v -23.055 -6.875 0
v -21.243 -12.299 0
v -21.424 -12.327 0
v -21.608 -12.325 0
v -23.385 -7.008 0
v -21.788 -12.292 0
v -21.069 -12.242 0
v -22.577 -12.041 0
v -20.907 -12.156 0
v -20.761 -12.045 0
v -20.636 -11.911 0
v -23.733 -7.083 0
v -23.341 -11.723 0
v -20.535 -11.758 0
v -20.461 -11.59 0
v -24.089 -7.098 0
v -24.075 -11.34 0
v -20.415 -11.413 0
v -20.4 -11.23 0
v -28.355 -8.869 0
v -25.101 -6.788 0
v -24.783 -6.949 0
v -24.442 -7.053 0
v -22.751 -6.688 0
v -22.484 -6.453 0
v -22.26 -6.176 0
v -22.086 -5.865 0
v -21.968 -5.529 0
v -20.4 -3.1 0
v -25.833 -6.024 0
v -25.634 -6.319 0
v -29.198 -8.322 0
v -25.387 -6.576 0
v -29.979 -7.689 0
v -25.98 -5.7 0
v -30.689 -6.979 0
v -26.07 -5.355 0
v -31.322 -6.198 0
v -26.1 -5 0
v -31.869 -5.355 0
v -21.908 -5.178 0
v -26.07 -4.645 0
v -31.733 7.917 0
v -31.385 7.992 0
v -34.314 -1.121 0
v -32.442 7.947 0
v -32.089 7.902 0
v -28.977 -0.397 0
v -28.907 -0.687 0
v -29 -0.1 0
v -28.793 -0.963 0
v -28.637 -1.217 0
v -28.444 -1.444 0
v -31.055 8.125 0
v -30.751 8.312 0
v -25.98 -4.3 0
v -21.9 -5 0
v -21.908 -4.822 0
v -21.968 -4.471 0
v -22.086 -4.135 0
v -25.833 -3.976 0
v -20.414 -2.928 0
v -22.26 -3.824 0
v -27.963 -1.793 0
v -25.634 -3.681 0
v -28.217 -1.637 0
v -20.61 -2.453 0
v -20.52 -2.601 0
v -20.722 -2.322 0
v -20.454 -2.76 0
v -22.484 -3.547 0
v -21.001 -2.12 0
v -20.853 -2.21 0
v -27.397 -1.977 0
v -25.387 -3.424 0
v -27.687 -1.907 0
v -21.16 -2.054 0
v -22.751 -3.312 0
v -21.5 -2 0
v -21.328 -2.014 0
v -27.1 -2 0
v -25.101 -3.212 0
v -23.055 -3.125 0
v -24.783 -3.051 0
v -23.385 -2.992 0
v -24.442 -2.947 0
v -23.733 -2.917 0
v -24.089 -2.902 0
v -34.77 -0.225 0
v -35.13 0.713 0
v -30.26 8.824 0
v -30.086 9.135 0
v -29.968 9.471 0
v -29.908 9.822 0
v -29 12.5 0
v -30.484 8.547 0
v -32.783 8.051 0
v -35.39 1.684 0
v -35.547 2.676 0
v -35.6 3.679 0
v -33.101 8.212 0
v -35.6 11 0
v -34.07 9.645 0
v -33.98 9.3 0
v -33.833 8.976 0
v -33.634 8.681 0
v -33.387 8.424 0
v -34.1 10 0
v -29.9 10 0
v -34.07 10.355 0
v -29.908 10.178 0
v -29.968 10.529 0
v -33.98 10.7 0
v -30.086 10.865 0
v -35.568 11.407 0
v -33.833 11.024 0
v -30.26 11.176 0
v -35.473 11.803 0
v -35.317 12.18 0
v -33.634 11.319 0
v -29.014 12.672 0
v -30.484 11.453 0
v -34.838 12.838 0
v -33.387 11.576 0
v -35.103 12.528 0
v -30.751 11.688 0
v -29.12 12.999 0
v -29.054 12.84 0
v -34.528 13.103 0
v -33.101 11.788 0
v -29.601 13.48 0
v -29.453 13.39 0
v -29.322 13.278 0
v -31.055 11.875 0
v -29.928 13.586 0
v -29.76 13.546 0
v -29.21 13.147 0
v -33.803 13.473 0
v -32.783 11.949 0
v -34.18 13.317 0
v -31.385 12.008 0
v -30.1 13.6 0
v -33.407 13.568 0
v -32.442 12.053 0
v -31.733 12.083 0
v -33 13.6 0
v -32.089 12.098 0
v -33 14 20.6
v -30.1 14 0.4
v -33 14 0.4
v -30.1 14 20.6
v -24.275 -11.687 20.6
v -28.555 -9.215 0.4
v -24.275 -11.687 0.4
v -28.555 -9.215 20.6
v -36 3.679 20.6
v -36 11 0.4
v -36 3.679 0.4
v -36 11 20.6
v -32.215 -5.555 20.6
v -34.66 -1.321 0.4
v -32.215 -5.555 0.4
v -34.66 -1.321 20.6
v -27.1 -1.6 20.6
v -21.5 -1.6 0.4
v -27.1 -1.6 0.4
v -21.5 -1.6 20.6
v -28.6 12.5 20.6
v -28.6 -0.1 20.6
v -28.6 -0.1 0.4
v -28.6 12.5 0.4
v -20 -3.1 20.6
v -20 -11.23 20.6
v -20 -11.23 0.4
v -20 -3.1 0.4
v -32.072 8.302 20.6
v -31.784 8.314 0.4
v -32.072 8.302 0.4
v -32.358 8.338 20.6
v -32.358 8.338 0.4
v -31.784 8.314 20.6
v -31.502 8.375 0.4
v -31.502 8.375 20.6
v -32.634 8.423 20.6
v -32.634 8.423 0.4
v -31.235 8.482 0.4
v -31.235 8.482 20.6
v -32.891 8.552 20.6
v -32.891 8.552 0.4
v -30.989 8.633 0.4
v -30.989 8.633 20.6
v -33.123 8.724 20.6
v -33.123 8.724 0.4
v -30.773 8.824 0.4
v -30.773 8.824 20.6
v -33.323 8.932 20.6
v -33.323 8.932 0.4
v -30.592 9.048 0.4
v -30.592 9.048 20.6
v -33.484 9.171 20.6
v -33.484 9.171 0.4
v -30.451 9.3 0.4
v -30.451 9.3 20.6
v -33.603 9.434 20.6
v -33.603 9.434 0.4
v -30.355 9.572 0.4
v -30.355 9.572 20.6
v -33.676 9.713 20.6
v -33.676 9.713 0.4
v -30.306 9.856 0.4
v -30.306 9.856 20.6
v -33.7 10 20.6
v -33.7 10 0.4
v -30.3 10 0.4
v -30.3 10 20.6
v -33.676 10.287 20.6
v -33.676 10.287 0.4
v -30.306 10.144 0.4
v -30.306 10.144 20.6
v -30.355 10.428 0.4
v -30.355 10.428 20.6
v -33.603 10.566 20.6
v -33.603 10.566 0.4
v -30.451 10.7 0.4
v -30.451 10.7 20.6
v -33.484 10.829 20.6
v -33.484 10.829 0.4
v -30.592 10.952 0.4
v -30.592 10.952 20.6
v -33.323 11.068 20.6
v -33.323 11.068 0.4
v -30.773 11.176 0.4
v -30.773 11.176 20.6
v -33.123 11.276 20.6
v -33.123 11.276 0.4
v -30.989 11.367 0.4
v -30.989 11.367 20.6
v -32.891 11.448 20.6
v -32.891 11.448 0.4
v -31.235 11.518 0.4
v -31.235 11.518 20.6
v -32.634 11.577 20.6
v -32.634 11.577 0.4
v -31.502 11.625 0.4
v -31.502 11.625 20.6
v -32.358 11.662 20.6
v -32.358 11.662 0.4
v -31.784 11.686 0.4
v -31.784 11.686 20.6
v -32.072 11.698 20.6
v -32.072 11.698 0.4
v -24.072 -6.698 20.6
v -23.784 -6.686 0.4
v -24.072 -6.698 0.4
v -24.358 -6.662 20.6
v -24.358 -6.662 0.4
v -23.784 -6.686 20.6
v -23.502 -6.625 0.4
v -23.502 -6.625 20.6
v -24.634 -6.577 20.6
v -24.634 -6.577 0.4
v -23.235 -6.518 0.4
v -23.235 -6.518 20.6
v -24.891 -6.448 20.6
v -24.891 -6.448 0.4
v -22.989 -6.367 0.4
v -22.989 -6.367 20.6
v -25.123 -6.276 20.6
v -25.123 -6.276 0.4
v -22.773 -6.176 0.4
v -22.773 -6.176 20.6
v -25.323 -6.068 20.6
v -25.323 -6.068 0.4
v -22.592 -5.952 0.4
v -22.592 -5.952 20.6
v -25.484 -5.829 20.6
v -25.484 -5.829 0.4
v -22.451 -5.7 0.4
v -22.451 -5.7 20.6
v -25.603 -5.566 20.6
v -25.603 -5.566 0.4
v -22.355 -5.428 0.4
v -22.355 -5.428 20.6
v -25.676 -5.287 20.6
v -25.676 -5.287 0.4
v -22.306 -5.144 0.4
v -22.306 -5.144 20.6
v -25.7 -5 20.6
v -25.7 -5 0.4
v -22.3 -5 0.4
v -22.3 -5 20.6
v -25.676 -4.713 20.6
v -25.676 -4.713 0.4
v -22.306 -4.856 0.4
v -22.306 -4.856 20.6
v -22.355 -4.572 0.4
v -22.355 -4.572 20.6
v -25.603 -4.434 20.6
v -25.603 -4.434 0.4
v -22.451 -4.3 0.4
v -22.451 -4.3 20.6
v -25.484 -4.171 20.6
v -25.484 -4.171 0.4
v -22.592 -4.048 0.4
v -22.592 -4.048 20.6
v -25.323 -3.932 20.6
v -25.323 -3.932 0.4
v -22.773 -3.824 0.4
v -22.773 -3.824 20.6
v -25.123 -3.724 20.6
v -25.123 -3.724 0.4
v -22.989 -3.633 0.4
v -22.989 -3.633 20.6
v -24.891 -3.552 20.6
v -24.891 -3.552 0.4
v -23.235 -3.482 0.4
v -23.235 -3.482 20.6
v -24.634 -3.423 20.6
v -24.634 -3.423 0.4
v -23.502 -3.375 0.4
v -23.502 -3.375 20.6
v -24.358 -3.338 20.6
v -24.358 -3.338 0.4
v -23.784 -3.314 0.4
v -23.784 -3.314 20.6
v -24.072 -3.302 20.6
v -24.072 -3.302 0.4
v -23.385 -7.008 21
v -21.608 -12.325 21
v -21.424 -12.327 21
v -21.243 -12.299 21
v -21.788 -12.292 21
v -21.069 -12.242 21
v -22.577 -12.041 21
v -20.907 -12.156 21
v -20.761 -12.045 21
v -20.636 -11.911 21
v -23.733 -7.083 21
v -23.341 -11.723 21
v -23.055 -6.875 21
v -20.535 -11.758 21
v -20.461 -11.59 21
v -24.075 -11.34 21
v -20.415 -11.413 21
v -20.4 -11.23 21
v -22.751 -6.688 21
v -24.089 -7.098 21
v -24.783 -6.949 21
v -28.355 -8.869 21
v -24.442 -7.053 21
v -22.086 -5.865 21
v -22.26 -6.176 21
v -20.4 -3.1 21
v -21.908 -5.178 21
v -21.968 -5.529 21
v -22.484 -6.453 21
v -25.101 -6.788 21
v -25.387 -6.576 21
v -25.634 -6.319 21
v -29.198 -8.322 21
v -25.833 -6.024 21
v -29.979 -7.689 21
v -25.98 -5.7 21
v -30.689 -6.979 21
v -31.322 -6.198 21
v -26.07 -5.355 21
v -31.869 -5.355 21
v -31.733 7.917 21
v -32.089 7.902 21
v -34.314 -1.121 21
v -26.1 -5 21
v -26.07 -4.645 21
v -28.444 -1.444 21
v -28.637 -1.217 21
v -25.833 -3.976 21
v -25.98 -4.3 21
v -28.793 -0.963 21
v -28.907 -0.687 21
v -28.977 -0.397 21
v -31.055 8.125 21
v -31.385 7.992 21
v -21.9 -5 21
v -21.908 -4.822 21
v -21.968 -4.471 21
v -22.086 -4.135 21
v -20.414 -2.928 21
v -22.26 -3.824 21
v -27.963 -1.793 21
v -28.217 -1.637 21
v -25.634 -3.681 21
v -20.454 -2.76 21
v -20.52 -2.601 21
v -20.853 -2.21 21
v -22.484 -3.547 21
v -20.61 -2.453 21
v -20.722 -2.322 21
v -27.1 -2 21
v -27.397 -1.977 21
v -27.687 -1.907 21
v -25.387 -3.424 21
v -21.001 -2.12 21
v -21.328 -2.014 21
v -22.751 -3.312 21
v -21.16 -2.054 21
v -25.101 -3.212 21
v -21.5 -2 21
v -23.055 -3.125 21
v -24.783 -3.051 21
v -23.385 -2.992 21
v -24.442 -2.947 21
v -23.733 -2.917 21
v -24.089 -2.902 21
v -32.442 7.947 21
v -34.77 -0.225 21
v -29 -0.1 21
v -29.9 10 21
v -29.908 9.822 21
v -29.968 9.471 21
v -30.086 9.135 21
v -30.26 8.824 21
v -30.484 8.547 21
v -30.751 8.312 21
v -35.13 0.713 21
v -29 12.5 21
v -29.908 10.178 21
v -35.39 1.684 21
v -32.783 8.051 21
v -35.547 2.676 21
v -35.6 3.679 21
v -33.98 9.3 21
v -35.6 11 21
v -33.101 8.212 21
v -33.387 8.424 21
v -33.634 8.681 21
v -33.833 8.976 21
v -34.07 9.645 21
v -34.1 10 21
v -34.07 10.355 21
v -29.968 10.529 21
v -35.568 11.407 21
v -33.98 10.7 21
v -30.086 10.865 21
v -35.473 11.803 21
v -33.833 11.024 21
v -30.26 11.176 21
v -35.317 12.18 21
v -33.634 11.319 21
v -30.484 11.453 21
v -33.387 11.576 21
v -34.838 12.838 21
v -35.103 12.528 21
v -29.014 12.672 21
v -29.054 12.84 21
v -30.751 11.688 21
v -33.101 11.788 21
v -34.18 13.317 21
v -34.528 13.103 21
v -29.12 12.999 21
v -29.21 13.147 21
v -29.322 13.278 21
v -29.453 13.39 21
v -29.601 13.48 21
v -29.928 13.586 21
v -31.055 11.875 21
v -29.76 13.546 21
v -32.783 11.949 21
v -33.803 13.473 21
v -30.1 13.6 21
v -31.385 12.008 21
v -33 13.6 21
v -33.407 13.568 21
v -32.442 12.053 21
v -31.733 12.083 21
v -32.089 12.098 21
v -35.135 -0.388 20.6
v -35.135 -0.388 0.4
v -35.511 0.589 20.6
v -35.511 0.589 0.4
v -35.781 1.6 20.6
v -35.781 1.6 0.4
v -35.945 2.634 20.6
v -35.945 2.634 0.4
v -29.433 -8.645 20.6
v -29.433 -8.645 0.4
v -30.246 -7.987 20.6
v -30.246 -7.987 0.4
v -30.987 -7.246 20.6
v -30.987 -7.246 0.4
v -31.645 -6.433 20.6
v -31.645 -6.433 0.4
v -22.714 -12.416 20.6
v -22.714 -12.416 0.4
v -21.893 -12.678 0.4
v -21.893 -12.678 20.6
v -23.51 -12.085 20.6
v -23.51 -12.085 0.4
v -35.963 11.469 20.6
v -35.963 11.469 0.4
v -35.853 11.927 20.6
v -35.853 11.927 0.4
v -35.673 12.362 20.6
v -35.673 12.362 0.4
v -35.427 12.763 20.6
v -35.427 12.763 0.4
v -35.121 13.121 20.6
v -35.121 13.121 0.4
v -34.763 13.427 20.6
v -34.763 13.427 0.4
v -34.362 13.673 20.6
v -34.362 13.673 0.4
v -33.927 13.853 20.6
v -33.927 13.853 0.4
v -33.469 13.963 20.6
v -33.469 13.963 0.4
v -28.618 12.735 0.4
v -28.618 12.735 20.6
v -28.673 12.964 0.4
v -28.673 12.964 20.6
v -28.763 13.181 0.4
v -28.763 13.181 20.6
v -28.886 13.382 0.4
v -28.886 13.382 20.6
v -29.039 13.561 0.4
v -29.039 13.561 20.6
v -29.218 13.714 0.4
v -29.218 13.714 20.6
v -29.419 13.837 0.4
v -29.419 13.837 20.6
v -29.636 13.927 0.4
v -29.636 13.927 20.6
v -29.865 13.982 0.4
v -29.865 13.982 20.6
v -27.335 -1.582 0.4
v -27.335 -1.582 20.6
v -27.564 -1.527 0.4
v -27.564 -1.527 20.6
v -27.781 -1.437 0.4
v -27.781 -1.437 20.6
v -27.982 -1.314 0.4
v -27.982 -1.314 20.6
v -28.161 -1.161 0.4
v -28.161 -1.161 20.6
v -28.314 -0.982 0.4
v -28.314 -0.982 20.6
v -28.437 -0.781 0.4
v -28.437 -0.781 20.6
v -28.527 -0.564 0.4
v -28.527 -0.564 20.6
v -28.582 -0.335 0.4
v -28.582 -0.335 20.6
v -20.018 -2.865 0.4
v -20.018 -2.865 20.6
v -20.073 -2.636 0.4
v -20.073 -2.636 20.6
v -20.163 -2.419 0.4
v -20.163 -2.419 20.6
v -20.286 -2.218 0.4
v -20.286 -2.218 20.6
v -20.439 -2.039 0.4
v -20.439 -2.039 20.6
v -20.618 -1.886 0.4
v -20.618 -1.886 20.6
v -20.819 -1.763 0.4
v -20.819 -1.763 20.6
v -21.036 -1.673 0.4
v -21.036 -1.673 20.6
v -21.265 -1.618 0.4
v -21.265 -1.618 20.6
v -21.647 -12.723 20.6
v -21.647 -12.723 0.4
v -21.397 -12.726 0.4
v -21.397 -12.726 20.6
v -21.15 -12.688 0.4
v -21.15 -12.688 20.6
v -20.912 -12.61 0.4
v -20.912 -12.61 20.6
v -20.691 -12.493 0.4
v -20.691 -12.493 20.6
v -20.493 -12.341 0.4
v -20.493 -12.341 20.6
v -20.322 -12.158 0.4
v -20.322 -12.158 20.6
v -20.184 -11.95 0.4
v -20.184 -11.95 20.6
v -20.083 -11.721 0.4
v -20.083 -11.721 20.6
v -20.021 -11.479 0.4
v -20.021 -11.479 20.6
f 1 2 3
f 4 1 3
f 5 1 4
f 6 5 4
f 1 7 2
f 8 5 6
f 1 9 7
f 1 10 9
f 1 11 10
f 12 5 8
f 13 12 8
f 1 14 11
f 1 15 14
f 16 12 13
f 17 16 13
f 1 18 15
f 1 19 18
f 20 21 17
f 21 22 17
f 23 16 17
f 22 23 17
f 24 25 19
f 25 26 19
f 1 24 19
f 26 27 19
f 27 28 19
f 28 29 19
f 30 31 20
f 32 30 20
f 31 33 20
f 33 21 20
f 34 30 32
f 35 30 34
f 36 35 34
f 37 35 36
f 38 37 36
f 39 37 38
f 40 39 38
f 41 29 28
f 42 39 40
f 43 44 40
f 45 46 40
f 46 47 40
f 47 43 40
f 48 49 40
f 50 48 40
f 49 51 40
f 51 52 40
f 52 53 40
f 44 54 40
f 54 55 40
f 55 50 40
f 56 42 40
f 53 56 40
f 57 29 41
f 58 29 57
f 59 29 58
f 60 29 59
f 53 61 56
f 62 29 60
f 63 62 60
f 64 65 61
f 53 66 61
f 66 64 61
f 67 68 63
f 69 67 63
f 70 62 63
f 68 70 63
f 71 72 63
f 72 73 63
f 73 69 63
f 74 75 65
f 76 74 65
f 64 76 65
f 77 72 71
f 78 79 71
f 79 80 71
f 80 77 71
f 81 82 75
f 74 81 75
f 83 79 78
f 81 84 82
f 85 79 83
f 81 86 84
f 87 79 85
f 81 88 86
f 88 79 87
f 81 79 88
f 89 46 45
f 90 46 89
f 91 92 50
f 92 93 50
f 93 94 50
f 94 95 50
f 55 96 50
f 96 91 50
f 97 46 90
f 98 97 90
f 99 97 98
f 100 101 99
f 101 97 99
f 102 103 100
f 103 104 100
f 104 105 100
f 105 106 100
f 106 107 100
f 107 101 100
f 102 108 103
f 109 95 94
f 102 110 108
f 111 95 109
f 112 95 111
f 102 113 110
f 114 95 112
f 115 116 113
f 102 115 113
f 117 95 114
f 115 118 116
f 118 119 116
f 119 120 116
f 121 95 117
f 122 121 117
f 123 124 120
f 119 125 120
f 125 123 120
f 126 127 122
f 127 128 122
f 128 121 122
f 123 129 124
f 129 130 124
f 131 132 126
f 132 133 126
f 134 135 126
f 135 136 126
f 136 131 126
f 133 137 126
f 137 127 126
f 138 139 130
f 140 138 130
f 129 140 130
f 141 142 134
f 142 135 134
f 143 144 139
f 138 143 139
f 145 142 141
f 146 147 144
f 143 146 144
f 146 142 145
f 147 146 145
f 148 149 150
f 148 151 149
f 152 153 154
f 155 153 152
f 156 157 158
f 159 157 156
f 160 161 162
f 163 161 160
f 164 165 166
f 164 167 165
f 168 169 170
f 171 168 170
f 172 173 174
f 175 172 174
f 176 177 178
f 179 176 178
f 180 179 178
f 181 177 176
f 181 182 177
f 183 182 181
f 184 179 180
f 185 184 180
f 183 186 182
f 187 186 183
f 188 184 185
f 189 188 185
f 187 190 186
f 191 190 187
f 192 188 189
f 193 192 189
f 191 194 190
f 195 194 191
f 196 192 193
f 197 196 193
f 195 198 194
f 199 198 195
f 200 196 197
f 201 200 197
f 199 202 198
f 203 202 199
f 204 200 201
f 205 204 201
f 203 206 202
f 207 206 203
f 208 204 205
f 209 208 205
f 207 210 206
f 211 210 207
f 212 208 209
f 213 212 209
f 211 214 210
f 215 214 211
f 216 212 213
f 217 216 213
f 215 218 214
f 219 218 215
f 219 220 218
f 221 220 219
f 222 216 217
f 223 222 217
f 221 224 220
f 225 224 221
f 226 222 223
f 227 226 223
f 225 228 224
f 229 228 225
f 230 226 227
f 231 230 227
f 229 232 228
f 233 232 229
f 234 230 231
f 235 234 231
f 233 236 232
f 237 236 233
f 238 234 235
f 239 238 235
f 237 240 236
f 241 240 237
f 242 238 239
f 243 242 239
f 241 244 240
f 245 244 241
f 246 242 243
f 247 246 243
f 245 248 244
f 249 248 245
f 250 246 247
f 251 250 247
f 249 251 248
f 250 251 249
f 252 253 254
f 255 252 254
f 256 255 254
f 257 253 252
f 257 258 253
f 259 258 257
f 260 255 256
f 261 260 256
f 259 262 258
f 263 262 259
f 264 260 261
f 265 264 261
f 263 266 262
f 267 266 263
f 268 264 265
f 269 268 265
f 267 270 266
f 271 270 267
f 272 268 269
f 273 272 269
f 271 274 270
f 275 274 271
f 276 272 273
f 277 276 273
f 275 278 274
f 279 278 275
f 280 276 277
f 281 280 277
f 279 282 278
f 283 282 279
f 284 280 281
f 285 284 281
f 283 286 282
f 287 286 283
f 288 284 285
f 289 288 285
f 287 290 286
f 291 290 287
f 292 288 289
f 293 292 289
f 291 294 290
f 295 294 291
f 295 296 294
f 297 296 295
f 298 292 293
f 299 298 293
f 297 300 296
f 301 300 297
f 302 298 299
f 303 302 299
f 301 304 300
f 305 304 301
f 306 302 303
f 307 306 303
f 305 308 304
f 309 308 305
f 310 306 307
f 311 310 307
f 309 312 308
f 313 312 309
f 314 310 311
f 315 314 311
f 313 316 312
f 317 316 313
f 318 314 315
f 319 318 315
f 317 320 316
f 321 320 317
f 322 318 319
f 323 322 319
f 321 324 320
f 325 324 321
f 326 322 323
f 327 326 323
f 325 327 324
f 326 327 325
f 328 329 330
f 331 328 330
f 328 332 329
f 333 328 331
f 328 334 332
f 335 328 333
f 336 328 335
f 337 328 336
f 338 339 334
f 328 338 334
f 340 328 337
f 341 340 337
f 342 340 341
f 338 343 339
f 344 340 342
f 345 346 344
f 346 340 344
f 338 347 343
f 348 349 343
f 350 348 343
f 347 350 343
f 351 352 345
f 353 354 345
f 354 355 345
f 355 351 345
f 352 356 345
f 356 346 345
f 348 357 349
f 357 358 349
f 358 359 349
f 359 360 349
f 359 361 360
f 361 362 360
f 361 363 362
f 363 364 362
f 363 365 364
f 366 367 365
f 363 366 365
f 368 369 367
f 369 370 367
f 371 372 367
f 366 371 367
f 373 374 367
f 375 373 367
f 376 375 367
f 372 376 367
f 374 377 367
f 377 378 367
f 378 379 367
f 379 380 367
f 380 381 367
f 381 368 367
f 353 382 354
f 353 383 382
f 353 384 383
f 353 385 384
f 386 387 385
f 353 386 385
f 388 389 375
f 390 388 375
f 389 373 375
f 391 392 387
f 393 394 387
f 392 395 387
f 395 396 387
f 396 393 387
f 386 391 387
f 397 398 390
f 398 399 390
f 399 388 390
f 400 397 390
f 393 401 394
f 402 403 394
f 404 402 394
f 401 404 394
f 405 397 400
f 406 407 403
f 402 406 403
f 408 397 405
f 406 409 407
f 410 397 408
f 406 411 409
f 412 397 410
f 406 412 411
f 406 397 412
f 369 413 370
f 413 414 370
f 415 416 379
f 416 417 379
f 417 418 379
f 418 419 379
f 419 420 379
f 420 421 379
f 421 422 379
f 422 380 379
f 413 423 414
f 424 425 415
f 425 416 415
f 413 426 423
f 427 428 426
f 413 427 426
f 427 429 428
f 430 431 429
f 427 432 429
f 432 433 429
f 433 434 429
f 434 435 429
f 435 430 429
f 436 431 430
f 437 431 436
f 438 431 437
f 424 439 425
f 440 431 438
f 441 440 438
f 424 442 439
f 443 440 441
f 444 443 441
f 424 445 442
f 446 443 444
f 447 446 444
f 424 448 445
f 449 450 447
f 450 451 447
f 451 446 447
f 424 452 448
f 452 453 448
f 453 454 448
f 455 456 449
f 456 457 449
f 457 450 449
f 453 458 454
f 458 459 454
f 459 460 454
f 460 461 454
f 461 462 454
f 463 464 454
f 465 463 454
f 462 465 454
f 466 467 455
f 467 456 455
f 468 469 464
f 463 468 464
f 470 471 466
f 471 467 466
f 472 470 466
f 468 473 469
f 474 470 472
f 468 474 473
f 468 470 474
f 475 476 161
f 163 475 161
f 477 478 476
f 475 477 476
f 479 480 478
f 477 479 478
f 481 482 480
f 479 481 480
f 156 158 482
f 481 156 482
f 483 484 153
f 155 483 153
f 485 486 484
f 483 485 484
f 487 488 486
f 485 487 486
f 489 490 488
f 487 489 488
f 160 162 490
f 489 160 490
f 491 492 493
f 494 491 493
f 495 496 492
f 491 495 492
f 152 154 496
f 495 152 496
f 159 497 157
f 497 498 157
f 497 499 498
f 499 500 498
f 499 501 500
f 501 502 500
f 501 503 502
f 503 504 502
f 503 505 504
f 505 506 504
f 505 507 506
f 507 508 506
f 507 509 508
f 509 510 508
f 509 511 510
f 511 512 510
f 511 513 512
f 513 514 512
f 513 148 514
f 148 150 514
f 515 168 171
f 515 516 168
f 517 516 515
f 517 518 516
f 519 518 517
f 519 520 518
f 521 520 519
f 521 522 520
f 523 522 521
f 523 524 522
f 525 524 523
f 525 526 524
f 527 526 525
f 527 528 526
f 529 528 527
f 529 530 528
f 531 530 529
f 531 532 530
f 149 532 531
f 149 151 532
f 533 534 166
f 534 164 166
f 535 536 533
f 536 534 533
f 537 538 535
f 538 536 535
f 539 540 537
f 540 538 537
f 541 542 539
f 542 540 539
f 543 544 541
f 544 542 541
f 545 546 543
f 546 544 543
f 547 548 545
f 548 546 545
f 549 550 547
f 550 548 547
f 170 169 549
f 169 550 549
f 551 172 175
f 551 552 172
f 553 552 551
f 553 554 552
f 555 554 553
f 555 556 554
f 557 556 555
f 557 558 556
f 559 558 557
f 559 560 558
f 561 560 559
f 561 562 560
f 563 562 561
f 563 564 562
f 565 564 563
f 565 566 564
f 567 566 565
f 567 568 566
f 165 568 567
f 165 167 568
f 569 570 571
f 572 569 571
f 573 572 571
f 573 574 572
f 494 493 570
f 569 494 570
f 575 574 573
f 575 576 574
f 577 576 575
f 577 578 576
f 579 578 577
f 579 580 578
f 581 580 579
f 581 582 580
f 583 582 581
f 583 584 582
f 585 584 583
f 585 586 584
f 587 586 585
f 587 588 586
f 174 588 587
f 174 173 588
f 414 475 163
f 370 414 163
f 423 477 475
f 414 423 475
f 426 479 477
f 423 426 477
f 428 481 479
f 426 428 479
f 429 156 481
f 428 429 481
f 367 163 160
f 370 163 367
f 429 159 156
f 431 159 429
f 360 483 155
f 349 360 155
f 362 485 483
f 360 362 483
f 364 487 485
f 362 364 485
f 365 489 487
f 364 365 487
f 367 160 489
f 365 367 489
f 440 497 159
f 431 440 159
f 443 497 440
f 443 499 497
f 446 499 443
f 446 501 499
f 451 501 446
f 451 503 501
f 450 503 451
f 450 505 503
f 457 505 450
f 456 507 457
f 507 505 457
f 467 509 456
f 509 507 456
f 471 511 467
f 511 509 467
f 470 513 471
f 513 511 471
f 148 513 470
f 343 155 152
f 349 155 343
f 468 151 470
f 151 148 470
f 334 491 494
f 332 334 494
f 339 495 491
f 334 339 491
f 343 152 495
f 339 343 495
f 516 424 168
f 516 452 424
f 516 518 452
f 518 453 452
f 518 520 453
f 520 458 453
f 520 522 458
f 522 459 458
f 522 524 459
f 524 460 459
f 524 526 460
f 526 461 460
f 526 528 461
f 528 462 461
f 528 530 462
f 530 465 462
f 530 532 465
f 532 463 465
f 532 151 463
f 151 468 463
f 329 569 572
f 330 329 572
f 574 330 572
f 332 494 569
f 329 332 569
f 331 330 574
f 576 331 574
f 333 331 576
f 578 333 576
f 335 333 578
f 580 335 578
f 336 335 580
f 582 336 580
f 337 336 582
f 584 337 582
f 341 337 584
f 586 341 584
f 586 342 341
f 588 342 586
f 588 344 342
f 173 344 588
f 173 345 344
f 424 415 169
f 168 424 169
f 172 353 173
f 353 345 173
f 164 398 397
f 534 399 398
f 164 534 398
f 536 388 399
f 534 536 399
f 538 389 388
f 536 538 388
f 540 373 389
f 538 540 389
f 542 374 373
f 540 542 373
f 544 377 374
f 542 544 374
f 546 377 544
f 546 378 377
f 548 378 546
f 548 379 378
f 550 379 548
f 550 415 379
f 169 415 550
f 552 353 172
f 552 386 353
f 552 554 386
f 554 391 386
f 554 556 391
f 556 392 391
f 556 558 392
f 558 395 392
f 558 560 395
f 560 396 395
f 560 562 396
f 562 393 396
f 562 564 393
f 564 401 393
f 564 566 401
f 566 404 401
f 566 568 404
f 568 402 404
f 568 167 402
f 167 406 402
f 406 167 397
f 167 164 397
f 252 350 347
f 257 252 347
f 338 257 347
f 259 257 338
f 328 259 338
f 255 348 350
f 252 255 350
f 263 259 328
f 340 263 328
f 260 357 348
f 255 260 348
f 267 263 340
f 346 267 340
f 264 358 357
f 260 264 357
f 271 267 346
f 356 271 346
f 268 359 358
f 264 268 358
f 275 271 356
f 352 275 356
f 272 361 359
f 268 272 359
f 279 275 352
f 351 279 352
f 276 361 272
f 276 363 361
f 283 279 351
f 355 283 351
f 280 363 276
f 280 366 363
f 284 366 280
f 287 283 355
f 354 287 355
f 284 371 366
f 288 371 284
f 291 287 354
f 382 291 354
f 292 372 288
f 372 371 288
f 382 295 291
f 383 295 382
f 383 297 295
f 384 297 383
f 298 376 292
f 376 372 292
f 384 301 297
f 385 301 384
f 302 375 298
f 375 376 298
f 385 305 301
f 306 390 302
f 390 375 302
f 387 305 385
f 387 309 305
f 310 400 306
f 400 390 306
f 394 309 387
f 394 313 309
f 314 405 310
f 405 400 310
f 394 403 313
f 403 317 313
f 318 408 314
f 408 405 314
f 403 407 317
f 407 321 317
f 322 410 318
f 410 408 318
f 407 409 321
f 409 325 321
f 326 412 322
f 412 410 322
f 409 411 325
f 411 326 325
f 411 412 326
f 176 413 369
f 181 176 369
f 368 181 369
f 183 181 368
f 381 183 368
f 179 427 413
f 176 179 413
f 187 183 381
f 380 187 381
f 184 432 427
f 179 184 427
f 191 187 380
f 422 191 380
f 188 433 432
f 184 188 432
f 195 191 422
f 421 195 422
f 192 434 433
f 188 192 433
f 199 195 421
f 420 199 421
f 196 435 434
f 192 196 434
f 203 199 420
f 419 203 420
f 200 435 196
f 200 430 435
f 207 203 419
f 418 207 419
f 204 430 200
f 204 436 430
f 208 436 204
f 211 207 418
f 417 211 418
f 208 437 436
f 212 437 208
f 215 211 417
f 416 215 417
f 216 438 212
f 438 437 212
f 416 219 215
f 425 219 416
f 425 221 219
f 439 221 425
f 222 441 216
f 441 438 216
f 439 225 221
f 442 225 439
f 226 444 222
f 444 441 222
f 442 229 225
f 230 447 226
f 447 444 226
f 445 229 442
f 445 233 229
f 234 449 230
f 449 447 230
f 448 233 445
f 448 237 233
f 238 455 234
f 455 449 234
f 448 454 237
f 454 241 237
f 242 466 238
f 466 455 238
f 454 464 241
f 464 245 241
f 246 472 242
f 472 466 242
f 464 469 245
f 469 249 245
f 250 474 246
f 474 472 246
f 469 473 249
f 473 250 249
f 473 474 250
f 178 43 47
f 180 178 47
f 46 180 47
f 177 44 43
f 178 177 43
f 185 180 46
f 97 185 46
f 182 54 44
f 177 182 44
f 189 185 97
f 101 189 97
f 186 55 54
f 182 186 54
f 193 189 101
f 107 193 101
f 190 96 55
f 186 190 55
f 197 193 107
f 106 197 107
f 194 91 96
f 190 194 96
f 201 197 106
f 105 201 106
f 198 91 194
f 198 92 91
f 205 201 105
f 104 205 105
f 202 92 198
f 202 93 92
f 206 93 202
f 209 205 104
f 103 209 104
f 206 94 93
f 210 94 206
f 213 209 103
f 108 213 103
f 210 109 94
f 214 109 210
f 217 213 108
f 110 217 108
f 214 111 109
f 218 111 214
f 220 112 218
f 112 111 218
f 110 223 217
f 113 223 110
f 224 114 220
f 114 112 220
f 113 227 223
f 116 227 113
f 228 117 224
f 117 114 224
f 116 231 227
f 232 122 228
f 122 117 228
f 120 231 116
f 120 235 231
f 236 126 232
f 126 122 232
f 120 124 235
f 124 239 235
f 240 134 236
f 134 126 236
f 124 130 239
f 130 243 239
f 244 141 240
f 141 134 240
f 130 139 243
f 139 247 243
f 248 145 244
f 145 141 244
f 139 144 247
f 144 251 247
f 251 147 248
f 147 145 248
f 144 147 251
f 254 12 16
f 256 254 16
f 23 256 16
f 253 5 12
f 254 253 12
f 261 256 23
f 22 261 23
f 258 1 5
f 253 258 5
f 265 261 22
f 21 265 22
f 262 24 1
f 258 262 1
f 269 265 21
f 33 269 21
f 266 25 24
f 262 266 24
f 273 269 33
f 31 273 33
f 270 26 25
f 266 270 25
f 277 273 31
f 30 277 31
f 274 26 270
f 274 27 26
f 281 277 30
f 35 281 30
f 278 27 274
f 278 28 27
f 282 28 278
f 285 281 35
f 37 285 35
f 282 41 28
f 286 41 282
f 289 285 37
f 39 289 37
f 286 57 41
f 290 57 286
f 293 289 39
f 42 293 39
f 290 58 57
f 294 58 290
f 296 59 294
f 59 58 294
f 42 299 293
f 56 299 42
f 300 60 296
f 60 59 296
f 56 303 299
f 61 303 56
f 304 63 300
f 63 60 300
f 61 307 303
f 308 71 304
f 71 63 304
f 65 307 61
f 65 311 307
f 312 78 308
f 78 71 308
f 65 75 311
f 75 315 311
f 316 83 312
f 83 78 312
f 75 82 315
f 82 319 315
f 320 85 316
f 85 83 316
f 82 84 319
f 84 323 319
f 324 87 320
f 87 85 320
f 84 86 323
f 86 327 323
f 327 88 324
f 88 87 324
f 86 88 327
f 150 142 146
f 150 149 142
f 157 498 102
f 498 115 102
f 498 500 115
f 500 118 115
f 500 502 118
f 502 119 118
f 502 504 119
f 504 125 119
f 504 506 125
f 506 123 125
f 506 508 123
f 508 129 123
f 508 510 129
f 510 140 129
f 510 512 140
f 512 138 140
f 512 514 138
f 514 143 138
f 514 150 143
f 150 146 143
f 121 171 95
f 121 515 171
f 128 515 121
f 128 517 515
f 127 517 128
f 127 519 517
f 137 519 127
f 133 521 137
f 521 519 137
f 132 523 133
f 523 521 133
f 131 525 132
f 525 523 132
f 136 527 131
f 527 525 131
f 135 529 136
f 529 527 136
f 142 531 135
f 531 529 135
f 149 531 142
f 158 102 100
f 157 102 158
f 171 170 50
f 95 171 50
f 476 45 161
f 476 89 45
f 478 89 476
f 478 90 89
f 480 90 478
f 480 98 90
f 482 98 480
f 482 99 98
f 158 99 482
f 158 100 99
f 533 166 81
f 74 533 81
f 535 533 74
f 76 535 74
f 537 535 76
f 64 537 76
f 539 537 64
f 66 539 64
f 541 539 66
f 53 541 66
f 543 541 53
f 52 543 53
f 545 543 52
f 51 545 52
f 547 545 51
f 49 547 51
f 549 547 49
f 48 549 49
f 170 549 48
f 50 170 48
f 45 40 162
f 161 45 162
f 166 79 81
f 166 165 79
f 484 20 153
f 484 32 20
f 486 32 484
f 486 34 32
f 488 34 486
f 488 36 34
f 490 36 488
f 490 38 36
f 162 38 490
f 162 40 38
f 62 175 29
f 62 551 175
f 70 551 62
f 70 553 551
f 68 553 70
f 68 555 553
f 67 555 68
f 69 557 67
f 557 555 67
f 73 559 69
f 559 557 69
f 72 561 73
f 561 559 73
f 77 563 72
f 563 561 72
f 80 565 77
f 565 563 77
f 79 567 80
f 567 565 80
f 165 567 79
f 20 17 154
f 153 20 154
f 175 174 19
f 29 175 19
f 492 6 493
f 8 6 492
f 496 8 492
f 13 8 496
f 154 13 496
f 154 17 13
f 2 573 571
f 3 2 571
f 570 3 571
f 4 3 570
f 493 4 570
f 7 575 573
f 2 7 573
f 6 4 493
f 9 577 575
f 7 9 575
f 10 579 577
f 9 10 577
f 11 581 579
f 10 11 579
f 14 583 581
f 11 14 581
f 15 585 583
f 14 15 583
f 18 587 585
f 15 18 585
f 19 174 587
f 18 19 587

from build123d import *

# Parameters (mm, degrees)
SKETCH_2_R               = 7.1
SKETCH_2_R_2             = 6.1
EXTRUDE_1_DEPTH          = 2.2
SKETCH_2_3_R             = 9
SKETCH_2_3_R_2           = 7.1
EXTRUDE_2_DEPTH          = 4
EXTRUDE_3_DEPTH          = 4
SKETCH_4_W               = 44
SKETCH_4_H               = 27
SKETCH_4_W_2             = 38
SKETCH_4_H_2             = 21
EXTRUDE_4_DEPTH          = 4
EXTRUDE_1_2_DEPTH        = 4
DELETE_FACE_1_DEPTH      = 4
FILLET_4_R               = 0.5
FILLET_5_R               = 0.4
FILLET_6_R               = 1
SKETCH_8_R               = 2.2
EXTRUDE_7_DEPTH          = 4
CUT_EXTRUDE_1_DEPTH      = 39.832975817
CUT_EXTRUDE_1_DEPTH_BACK = 39.832975817
CUT_EXTRUDE_2_DEPTH      = 39.832975817
CUT_EXTRUDE_2_DEPTH_BACK = 39.832975817
SKETCH_9_OUTSIDE_W       = 89.4
SKETCH_9_OUTSIDE_H       = 44.4
SKETCH_9_OUTSIDE_R       = 1.7
SKETCH_9_2_R             = 1.7
EXTRUDE_8_DEPTH          = 21
FILLET_7_R               = 10
FILLET_8_R               = 3
FILLET_9_R               = 1.5
CHAMFER_1_SIZE           = 0.4


# Read off the part's stored shape, not the designer's step: 删除面1
with BuildPart() as part:
    # 草图2 → Extrude 1 (new body)
    with BuildSketch(Plane.XY):
        Circle(SKETCH_2_R)
        Circle(SKETCH_2_R_2, mode=Mode.SUBTRACT)
    extrude(amount=EXTRUDE_1_DEPTH)

    # 草图2<3> → 凸台-拉伸2 (add)
    with BuildSketch(Plane.XY):
        Circle(SKETCH_2_3_R)
        Circle(SKETCH_2_3_R_2, mode=Mode.SUBTRACT)
    extrude(amount=EXTRUDE_2_DEPTH)

    # 草图3 → 凸台-拉伸3 (add)
    with BuildSketch(Plane.XY):
        with BuildLine():
            Line((6, 6.708203932), (6, 9.5))
            Line((6, 9.5), (-6, 9.5))
            Line((-6, 9.5), (-6, 6.708203932))
            ThreePointArc((-6, 6.708203932), (0, 9), (6, 6.708203932))
        make_face()
        with BuildLine():
            Line((-6, -9.5), (6, -9.5))
            Line((6, -9.5), (6, -6.708203932))
            ThreePointArc((6, -6.708203932), (0, -9), (-6, -6.708203932))
            Line((-6, -6.708203932), (-6, -9.5))
        make_face()
    extrude(amount=EXTRUDE_3_DEPTH)



with BuildPart() as body_2:
    # 草图4 → 凸台-拉伸4 (new body)
    with BuildSketch(Plane.XY):
        with Locations((0, 0.5)):
            Rectangle(SKETCH_4_W, SKETCH_4_H)
        with Locations((0, 0.5)):
            Rectangle(SKETCH_4_W_2, SKETCH_4_H_2, mode=Mode.SUBTRACT)
    extrude(amount=EXTRUDE_4_DEPTH)


with BuildPart() as part_1:
    add(part.part)

    add(body_2.part)  # Extrude 1 2 merges body 2
    # 草图7 → Extrude 1 2 (add)
    with BuildSketch(Plane.XY):
        with BuildLine():
            ThreePointArc((19.19111663, -8.148610709), (15.188418529, -6.736776188), (10.944962783, -6.647601418))
            ThreePointArc((10.944962783, -6.647601418), (8.412688328, -7.06534444), (5.904962783, -7.611454086))
            Line((5.904962783, -7.611454086), (6.095037217, -8.388545914))
            ThreePointArc((6.095037217, -8.388545914), (8.562957594, -7.851104675), (11.055037217, -7.439992495))
            ThreePointArc((11.055037217, -7.439992495), (15.04515232, -7.523843398), (18.80888337, -8.851389291))
            Line((18.80888337, -8.851389291), (19.19111663, -8.148610709))
        make_face()
        with BuildLine():
            ThreePointArc((-18.80888337, -8.851389291), (-15.04515232, -7.523843398), (-11.055037217, -7.439992495))
            ThreePointArc((-11.055037217, -7.439992495), (-8.562957594, -7.851104675), (-6.095037217, -8.388545914))
            Line((-6.095037217, -8.388545914), (-5.904962783, -7.611454086))
            ThreePointArc((-5.904962783, -7.611454086), (-8.412688328, -7.06534444), (-10.944962783, -6.647601418))
            ThreePointArc((-10.944962783, -6.647601418), (-15.188418529, -6.736776188), (-19.19111663, -8.148610709))
            Line((-19.19111663, -8.148610709), (-18.80888337, -8.851389291))
        make_face()
        with BuildLine():
            ThreePointArc((-18.80888337, 7.148610709), (-15.04515232, 8.476156602), (-11.055037217, 8.560007505))
            ThreePointArc((-11.055037217, 8.560007505), (-8.562957594, 8.148895325), (-6.095037217, 7.611454086))
            Line((-6.095037217, 7.611454086), (-5.904962783, 8.388545914))
            ThreePointArc((-5.904962783, 8.388545914), (-8.412688328, 8.93465556), (-10.944962783, 9.352398582))
            ThreePointArc((-10.944962783, 9.352398582), (-15.188418529, 9.263223812), (-19.19111663, 7.851389291))
            Line((-19.19111663, 7.851389291), (-18.80888337, 7.148610709))
        make_face()
        with BuildLine():
            ThreePointArc((19.19111663, 7.851389291), (15.188418529, 9.263223812), (10.944962783, 9.352398582))
            ThreePointArc((10.944962783, 9.352398582), (8.412688328, 8.93465556), (5.904962783, 8.388545914))
            Line((5.904962783, 8.388545914), (6.095037217, 7.611454086))
            ThreePointArc((6.095037217, 7.611454086), (8.562957594, 8.148895325), (11.055037217, 8.560007505))
            ThreePointArc((11.055037217, 8.560007505), (15.04515232, 8.476156602), (18.80888337, 7.148610709))
            Line((18.80888337, 7.148610709), (19.19111663, 7.851389291))
        make_face()
    extrude(amount=EXTRUDE_1_2_DEPTH)

    # Delete Face 1 outline → Delete Face 1 (add)
    with BuildSketch(Plane.XY):
        with BuildLine():
            ThreePointArc((-19, 7.042506057), (-18.904671788, 7.095972847), (-18.80888337, 7.148610709))
            Line((-18.80888337, 7.148610709), (-19, 7.5))
            Line((-19, 7.5), (-19, 7.042506057))
        make_face()
        with BuildLine():
            Line((-6, 7.588108866), (-6, 8))
            Line((-6, 8), (-6.095037217, 7.611454086))
            ThreePointArc((-6.095037217, 7.611454086), (-6.047512851, 7.599804915), (-6, 7.588108866))
        make_face()
        with BuildLine():
            ThreePointArc((-19, -8.957493943), (-18.904671788, -8.904027153), (-18.80888337, -8.851389291))
            Line((-18.80888337, -8.851389291), (-19, -8.5))
            Line((-19, -8.5), (-19, -8.957493943))
        make_face()
        with BuildLine():
            Line((-6, -8.411891134), (-6, -8))
            Line((-6, -8), (-6.095037217, -8.388545914))
            ThreePointArc((-6.095037217, -8.388545914), (-6.047512851, -8.400195085), (-6, -8.411891134))
        make_face()
        with BuildLine():
            Line((6.095037217, 7.611454086), (6, 8))
            Line((6, 8), (6, 7.588108866))
            ThreePointArc((6, 7.588108866), (6.047512851, 7.599804915), (6.095037217, 7.611454086))
        make_face()
        with BuildLine():
            Line((19, 7.5), (18.80888337, 7.148610709))
            ThreePointArc((18.80888337, 7.148610709), (18.904671788, 7.095972847), (19, 7.042506057))
            Line((19, 7.042506057), (19, 7.5))
        make_face()
        with BuildLine():
            Line((6.095037217, -8.388545914), (6, -8))
            Line((6, -8), (6, -8.411891134))
            ThreePointArc((6, -8.411891134), (6.047512851, -8.400195085), (6.095037217, -8.388545914))
        make_face()
        with BuildLine():
            Line((19, -8.5), (18.80888337, -8.851389291))
            ThreePointArc((18.80888337, -8.851389291), (18.904671788, -8.904027153), (19, -8.957493943))
            Line((19, -8.957493943), (19, -8.5))
        make_face()
    extrude(amount=DELETE_FACE_1_DEPTH)

    # 圆角4
    fillet_4_edges = [part_1.edges().sort_by_distance(p)[0] for p in [
        (19, -8.046657496, 2),
        (6, -7.588305973, 2),
        (-19, -8.046657496, 2),
        (-6, -7.588305973, 2),
        (-6, 9.5, 2),
        (6, 9.5, 2),
        (6, 6.708203932, 2),
        (-6, 6.708203932, 2),
        (19, -8.957493943, 2),
        (-19, -8.957493943, 2),
        (-19, 7.042506057, 2),
        (19, 7.042506057, 2),
        (6, -6.708203932, 2),
        (-6, -6.708203932, 2),
        (-19, 7.953342504, 2),
        (19, 7.953342504, 2),
    ]]
    fillet(fillet_4_edges, radius=FILLET_4_R)

    # 圆角5
    fillet_5_edges = [part_1.edges().sort_by_distance(p)[0] for p in [
        (6, -8.411891134, 2),
        (-6, -8.411891134, 2),
        (-6, 7.588108866, 2),
        (6, 7.588108866, 2),
        (-6, -9.5, 2),
        (6, -9.5, 2),
        (-6, 8.411694027, 2),
        (-19, -10, 2),
        (19, -10, 2),
        (6, 8.411694027, 2),
    ]]
    fillet(fillet_5_edges, radius=FILLET_5_R)

    # 圆角6
    fillet_6_edges = [part_1.edges().sort_by_distance(p)[0] for p in [
        (19, 11, 2),
        (-19, 11, 2),
    ]]
    fillet(fillet_6_edges, radius=FILLET_6_R)

    # 草图8 → 凸台-拉伸7 (add)
    # profile 1 of 2: a face of its own
    with BuildSketch(Plane.XY):
        Polygon((-30.875644347, -7.875644347), (-22, -13), (-22, 14), (-36, 14), (-36, 1), align=None)
        with BuildLine():
            ThreePointArc((-22.3, 3), (-24, 1.3), (-25.7, 3))
            Line((-25.7, 3), (-25.7, 7))
            ThreePointArc((-25.7, 7), (-24, 8.7), (-22.3, 7))
            Line((-22.3, 7), (-22.3, 3))
        make_face(mode=Mode.SUBTRACT)
        with Locations((-32, 10)):
            Circle(SKETCH_8_R, mode=Mode.SUBTRACT)
    # profile 2 of 2: a face of its own
    with BuildSketch(Plane.XY):
        Polygon((22, -13), (30.875644347, -7.875644347), (36, 1), (36, 14), (22, 14), align=None)
        with BuildLine():
            Line((25.7, 7), (25.7, 3))
            ThreePointArc((25.7, 3), (24, 1.3), (22.3, 3))
            Line((22.3, 3), (22.3, 7))
            ThreePointArc((22.3, 7), (24, 8.7), (25.7, 7))
        make_face(mode=Mode.SUBTRACT)
        with Locations((32, 10)):
            Circle(SKETCH_8_R, mode=Mode.SUBTRACT)
    extrude(amount=EXTRUDE_7_DEPTH)

    # 草图8<3> → 切除-拉伸1 (cut, two sides: drawn at the far end of the back side and taken through both)
    with BuildSketch(Plane.XY.offset(-CUT_EXTRUDE_1_DEPTH_BACK)):
        with BuildLine():
            ThreePointArc((-22, -4.083484861), (-26.2, -5), (-22, -5.916515139))
            Line((-22, -5.916515139), (-22, -4.083484861))
        make_face()
        with BuildLine():
            Line((-22, -4.083484861), (-22, -5.916515139))
            ThreePointArc((-22, -5.916515139), (-21.850581474, -5.469041576), (-21.8, -5))
            ThreePointArc((-21.8, -5), (-21.850581474, -4.530958424), (-22, -4.083484861))
        make_face()
        with BuildLine():
            ThreePointArc((22, -4.083484861), (21.8, -5), (22, -5.916515139))
            Line((22, -5.916515139), (22, -4.083484861))
        make_face()
        with BuildLine():
            Line((22, -4.083484861), (22, -5.916515139))
            ThreePointArc((22, -5.916515139), (24.469041576, -7.149418526), (26.2, -5))
            ThreePointArc((26.2, -5), (24.469041576, -2.850581474), (22, -4.083484861))
        make_face()
    extrude(amount=CUT_EXTRUDE_1_DEPTH + CUT_EXTRUDE_1_DEPTH_BACK, mode=Mode.SUBTRACT)

    # 草图9 outside → 切除-拉伸2 (cut, two sides: drawn at the far end of the back side and taken through both)
    # profile 1 of 3: a face of its own
    with BuildSketch(Plane(origin=(0, 0, 0), x_dir=(-1, 0, 0), z_dir=(0, 0, -1)).offset(-CUT_EXTRUDE_2_DEPTH_BACK)):
        with Locations((0, 0.5)):
            Rectangle(SKETCH_9_OUTSIDE_W, SKETCH_9_OUTSIDE_H)
        Polygon((28.6, 14), (28.6, -1.6), (20, -1.6), (20, -13), (22, -13), (30.875644347, -7.875644347), (36, 1), (36, 14), align=None, mode=Mode.SUBTRACT)
    # profile 2 of 3: a face of its own
    with BuildSketch(Plane(origin=(0, 0, 0), x_dir=(-1, 0, 0), z_dir=(0, 0, -1)).offset(-CUT_EXTRUDE_2_DEPTH_BACK)):
        with Locations((32, 10)):
            Circle(SKETCH_9_OUTSIDE_R)
    # profile 3 of 3: a face of its own
    with BuildSketch(Plane(origin=(0, 0, 0), x_dir=(-1, 0, 0), z_dir=(0, 0, -1)).offset(-CUT_EXTRUDE_2_DEPTH_BACK)):
        with Locations((24, -5)):
            Circle(SKETCH_9_OUTSIDE_R)
    extrude(amount=CUT_EXTRUDE_2_DEPTH + CUT_EXTRUDE_2_DEPTH_BACK, mode=Mode.SUBTRACT)

    # 草图9<2> → 凸台-拉伸8 (add)
    with BuildSketch(Plane(origin=(0, 0, 0), x_dir=(-1, 0, 0), z_dir=(0, 0, -1))):
        Polygon((36, 1), (36, 14), (28.6, 14), (28.6, -1.6), (20, -1.6), (20, -13), (22, -13), (30.875644347, -7.875644347), align=None)
        with Locations((24, -5)):
            Circle(SKETCH_9_2_R, mode=Mode.SUBTRACT)
        with Locations((32, 10)):
            Circle(SKETCH_9_2_R, mode=Mode.SUBTRACT)
    extrude(amount=-EXTRUDE_8_DEPTH)

    # 圆角7
    # the kernel refuses this fillet: 10 mm, written as the material it takes off along each edge
    with BuildSketch(Plane(origin=(-36, 1, 27.698729811), x_dir=(0.5000000000000031, -0.8660254037844369, 0), z_dir=(0, 0, -1))) as fillet_7_piece_1:
        with BuildLine():
            CenterArc((FILLET_7_R * 0.267949192431, -FILLET_7_R), FILLET_7_R, 90, 30)
            Line((-FILLET_7_R * 0.232050807569, -FILLET_7_R * 0.133974596216), (-FILLET_7_R * 0.242050807569, -FILLET_7_R * 0.11665408814))
            Line((-FILLET_7_R * 0.242050807569, -FILLET_7_R * 0.11665408814), (-FILLET_7_R * 0.00535898384862, FILLET_7_R * 0.02))
            Line((-FILLET_7_R * 0.00535898384862, FILLET_7_R * 0.02), (FILLET_7_R * 0.267949192431, FILLET_7_R * 0.02))
            Line((FILLET_7_R * 0.267949192431, FILLET_7_R * 0.02), (FILLET_7_R * 0.267949192431, 0))
        make_face()
    extrude(amount=34.397459622, mode=Mode.SUBTRACT)
    with BuildSketch(Plane(origin=(-30.875644347, -7.875644347, 27.698729811), x_dir=(-0.499999999999999, 0.8660254037844392, 0), z_dir=(0, 0, -1))) as fillet_7_piece_2:
        with BuildLine():
            CenterArc((FILLET_7_R * 0.267949192431, FILLET_7_R), FILLET_7_R, 240, 30)
            Line((-FILLET_7_R * 0.232050807569, FILLET_7_R * 0.133974596216), (-FILLET_7_R * 0.242050807569, FILLET_7_R * 0.11665408814))
            Line((-FILLET_7_R * 0.242050807569, FILLET_7_R * 0.11665408814), (-FILLET_7_R * 0.00535898384862, -FILLET_7_R * 0.02))
            Line((-FILLET_7_R * 0.00535898384862, -FILLET_7_R * 0.02), (FILLET_7_R * 0.267949192431, -FILLET_7_R * 0.02))
            Line((FILLET_7_R * 0.267949192431, -FILLET_7_R * 0.02), (FILLET_7_R * 0.267949192431, 0))
        make_face()
    extrude(amount=34.397459622, mode=Mode.SUBTRACT)
    with BuildSketch(Plane(origin=(-22, -13, -6.56712034), x_dir=(1, 0, 0), z_dir=(0, 0, 1))) as fillet_7_piece_3:
        with BuildLine():
            CenterArc((2.725082782, 9.973678106), FILLET_7_R, 240, 25.841932763)
            Line((-2.274917218, 1.313424068), (-2.374917218, 1.140218987))
            Line((-2.374917218, 1.140218987), (-0.1, -0.173205081))
            Line((-0.1, -0.173205081), (0, -0.2))
            ThreePointArc((0, -0.2), (1, -0.2), (1.985498344, -0.199473562))
            Line((1.985498344, -0.199473562), (2, 0))
        make_face()
    extrude(amount=34.13424068, mode=Mode.SUBTRACT)

    # 圆角8
    fillet_8_edges = [part_1.edges().sort_by_distance(p)[0] for p in [
        (-36, 14, 10.5),
    ]]
    fillet(fillet_8_edges, radius=FILLET_8_R)

    # 圆角9
    fillet_9_edges = [part_1.edges().sort_by_distance(p)[0] for p in [
        (-28.6, -1.6, 10.5),
        (-28.6, 14, 10.5),
        (-20, -1.6, 10.5),
        (-20, -13, 10.5),
    ]]
    fillet(fillet_9_edges, radius=FILLET_9_R)

    # 倒角1
    chamfer_1_edges = [part_1.edges().sort_by_distance(p)[0] for p in [
        (-30.3, 10, 0),
        (-22.3, -5, 0),
        (-22.3, -5, 21),
        (-30.3, 10, 21),
        (-33.437822174, -3.437822174, 21),
        (-33.437822174, -3.437822174, 0),
        (-26.415026744, -10.450983121, 0),
        (-36, 7.339745962, 0),
        (-30.626204083, -7.626204083, 0),
        (-35.659258263, 1.091301473, 0),
        (-36, 7.339745962, 21),
        (-26.415026744, -10.450983121, 21),
        (-23.115886638, -12.259249594, 21),
        (-30.626204083, -7.626204083, 21),
        (-35.659258263, 1.091301473, 21),
        (-35.121320344, 13.121320344, 0),
        (-31.55, 14, 21),
        (-35.121320344, 13.121320344, 21),
        (-31.55, 14, 0),
        (-28.6, 6.2, 0),
        (-24.3, -1.6, 0),
        (-20, -7.164959535, 0),
        (-23.115886638, -12.259249594, 0),
        (-20.588680216, -12.421345211, 0),
        (-20.439339828, -2.039339828, 0),
        (-29.039339828, 13.560660172, 0),
        (-28.6, 6.2, 21),
        (-20, -7.164959535, 21),
        (-24.3, -1.6, 21),
        (-20.588680216, -12.421345211, 21),
        (-20.439339828, -2.039339828, 21),
        (-29.039339828, 13.560660172, 21),
        (-28.160660172, -1.160660172, 0),
        (-28.160660172, -1.160660172, 21),
    ]]
    chamfer(chamfer_1_edges, length=CHAMFER_1_SIZE)


solid = part_1.part
